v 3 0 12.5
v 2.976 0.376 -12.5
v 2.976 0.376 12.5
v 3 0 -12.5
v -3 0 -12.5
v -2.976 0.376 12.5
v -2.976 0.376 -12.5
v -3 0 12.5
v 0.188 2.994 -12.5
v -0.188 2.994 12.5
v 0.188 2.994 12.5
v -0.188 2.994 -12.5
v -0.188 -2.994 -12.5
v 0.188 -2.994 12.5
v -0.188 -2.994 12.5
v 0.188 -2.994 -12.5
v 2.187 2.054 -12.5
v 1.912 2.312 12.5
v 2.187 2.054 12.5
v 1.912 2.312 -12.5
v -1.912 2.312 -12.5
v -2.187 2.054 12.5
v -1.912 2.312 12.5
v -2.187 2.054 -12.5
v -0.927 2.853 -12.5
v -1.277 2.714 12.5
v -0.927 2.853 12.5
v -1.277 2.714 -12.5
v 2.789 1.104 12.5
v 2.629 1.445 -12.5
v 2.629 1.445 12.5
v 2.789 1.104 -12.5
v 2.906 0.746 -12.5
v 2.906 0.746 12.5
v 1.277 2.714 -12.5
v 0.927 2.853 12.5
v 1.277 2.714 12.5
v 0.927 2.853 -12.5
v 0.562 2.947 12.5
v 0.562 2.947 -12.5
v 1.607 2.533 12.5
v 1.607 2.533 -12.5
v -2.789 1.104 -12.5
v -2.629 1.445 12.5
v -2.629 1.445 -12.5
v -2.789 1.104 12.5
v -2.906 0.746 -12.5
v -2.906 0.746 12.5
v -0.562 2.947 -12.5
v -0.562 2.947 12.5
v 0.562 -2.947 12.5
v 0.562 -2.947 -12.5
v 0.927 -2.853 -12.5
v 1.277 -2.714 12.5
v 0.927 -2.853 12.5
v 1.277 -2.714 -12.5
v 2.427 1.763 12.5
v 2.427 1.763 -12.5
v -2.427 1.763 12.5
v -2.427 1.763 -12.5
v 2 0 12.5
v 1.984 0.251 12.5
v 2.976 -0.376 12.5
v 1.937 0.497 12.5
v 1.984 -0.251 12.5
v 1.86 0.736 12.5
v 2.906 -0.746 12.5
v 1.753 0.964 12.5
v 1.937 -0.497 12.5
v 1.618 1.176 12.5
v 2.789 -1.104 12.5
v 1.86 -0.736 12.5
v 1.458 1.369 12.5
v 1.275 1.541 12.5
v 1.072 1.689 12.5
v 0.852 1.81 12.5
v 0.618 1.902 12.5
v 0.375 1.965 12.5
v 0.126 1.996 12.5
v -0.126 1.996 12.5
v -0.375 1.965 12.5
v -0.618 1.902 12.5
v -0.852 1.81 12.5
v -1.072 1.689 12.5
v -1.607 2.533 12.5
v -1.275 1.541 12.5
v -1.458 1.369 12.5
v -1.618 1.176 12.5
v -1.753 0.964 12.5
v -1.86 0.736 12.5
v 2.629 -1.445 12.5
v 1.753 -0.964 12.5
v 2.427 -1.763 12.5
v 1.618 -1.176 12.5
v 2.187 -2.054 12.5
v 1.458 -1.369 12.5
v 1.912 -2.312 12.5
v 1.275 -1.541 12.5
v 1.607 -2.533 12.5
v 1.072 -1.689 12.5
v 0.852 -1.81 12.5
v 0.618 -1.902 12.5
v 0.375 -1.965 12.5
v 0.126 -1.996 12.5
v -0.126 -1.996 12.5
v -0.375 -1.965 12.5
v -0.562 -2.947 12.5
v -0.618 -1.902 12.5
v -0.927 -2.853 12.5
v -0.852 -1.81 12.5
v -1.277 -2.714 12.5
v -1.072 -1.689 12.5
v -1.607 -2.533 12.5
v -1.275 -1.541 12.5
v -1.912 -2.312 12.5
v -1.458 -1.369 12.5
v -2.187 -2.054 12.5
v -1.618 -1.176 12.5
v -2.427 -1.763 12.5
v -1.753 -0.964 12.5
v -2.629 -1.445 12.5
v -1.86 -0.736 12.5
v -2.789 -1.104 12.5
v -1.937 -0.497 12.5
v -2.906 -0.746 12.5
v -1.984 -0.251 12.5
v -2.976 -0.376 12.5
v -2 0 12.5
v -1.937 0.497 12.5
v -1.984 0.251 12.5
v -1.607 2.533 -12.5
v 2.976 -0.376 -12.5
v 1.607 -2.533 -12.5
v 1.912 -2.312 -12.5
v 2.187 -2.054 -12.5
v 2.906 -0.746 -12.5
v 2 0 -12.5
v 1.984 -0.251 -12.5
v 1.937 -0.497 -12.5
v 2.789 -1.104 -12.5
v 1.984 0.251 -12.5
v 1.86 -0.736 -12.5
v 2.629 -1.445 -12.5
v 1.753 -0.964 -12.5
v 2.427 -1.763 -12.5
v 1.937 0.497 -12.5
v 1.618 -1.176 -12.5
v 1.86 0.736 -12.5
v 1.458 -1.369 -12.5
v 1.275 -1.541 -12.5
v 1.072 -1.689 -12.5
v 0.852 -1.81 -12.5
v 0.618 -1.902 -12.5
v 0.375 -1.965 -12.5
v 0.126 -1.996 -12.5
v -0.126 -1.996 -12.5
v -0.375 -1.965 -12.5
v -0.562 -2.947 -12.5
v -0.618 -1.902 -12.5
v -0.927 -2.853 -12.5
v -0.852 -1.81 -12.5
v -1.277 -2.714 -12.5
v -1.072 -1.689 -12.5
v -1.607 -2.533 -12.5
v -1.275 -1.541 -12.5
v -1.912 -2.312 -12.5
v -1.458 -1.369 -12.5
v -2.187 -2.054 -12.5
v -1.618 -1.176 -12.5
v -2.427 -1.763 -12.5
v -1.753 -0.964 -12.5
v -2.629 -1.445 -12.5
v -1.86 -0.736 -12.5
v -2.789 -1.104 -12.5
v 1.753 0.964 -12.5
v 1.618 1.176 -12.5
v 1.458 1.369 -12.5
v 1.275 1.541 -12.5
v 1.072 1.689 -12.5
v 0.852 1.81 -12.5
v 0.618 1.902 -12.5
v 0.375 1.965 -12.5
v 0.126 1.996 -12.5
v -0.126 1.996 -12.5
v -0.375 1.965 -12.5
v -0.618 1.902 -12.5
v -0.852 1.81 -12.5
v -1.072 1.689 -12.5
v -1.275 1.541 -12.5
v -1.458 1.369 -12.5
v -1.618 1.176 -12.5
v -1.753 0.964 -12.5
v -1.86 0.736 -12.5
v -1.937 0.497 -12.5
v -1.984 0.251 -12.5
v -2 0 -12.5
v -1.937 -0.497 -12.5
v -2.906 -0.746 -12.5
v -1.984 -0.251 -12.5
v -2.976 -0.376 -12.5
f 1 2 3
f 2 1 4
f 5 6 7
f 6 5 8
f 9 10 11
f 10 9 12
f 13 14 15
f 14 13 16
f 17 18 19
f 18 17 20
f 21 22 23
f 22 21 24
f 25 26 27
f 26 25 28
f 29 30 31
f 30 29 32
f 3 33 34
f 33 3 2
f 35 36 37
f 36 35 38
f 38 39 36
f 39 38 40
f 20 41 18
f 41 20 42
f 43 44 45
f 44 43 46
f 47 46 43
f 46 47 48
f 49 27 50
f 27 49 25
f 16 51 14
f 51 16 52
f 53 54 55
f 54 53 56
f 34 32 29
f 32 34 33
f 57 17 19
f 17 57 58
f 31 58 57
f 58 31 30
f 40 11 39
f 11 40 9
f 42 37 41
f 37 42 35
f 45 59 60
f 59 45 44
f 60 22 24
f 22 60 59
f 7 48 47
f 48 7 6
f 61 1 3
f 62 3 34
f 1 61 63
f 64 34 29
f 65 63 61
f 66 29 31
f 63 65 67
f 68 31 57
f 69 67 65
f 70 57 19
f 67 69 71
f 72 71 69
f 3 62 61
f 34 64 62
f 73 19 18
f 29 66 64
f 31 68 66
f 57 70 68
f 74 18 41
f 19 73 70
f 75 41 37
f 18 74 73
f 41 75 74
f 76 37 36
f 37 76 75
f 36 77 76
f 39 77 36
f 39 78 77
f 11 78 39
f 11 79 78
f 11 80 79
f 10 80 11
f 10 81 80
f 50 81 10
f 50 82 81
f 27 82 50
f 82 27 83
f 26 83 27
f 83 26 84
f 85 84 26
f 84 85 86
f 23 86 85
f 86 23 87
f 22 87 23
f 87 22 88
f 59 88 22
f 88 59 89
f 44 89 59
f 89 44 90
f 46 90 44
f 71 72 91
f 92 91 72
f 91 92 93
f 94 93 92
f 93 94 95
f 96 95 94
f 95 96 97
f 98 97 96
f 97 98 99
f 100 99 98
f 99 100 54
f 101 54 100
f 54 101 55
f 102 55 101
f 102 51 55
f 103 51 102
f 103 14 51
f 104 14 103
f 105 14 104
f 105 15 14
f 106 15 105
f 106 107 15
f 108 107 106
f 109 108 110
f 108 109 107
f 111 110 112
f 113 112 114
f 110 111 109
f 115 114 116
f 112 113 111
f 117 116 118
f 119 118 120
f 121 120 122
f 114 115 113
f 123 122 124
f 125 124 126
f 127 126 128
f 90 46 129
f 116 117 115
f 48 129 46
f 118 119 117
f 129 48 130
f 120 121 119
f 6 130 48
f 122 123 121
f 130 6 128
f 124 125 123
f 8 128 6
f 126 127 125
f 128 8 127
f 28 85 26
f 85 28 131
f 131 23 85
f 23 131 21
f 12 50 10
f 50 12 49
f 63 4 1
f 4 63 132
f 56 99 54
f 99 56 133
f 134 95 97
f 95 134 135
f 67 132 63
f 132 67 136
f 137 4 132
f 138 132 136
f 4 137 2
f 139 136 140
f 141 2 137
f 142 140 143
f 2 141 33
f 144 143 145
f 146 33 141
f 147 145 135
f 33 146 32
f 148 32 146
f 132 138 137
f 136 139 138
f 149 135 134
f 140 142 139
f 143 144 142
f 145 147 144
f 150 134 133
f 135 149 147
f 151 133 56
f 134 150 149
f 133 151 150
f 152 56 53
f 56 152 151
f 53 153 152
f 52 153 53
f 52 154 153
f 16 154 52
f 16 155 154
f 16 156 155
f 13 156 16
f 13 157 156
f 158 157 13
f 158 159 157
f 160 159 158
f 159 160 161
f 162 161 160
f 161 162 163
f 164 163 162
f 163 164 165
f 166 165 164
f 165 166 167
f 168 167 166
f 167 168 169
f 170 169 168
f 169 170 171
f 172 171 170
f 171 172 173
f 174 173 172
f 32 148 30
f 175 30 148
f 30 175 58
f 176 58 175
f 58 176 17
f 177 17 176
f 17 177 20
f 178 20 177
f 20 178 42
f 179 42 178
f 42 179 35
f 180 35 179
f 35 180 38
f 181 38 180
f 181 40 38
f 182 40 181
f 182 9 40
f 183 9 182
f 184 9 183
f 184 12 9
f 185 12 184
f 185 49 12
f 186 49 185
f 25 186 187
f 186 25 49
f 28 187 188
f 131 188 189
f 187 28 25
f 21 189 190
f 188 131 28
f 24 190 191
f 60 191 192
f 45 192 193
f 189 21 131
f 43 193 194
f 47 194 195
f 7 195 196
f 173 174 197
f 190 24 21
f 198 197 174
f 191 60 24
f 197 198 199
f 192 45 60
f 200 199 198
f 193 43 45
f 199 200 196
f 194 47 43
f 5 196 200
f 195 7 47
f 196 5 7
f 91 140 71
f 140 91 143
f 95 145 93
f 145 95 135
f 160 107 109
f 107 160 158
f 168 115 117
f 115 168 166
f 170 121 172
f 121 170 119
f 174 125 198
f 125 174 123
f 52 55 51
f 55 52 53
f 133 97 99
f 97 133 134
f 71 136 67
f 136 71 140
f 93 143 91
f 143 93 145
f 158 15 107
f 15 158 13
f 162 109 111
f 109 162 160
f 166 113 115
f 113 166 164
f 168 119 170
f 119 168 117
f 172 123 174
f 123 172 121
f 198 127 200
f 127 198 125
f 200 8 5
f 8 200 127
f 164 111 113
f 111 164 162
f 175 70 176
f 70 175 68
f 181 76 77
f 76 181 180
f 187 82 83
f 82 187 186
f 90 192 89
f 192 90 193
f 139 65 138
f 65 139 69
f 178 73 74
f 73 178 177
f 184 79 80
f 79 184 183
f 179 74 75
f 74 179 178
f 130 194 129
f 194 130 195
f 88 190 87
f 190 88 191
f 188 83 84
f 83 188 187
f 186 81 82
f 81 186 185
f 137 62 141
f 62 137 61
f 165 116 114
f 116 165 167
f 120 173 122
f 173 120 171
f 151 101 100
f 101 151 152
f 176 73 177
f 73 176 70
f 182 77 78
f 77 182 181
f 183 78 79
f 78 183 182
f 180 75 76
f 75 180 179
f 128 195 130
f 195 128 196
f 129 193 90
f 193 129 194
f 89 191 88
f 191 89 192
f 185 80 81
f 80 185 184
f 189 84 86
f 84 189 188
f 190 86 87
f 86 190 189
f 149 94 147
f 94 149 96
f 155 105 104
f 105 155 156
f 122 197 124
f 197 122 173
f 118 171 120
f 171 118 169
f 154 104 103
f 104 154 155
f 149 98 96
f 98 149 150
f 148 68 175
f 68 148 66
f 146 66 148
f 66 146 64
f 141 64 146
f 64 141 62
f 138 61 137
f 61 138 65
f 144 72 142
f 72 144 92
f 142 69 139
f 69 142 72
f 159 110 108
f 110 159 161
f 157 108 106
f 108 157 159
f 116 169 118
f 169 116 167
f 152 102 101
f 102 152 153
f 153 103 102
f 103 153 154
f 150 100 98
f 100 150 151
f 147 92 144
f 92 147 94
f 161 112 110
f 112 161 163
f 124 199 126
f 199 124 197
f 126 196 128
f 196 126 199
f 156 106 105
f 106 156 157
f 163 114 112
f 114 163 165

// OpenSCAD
$fn = 50;


difference() {
	union() {
		translate(v = [0, 0, -12.5000000000]) {
			cylinder(h = 25, r = 3.0000000000);
		}
	}
	union() {
		translate(v = [0, 0, -100.0000000000]) {
			cylinder(h = 200, r = 2);
		}
	}
}
